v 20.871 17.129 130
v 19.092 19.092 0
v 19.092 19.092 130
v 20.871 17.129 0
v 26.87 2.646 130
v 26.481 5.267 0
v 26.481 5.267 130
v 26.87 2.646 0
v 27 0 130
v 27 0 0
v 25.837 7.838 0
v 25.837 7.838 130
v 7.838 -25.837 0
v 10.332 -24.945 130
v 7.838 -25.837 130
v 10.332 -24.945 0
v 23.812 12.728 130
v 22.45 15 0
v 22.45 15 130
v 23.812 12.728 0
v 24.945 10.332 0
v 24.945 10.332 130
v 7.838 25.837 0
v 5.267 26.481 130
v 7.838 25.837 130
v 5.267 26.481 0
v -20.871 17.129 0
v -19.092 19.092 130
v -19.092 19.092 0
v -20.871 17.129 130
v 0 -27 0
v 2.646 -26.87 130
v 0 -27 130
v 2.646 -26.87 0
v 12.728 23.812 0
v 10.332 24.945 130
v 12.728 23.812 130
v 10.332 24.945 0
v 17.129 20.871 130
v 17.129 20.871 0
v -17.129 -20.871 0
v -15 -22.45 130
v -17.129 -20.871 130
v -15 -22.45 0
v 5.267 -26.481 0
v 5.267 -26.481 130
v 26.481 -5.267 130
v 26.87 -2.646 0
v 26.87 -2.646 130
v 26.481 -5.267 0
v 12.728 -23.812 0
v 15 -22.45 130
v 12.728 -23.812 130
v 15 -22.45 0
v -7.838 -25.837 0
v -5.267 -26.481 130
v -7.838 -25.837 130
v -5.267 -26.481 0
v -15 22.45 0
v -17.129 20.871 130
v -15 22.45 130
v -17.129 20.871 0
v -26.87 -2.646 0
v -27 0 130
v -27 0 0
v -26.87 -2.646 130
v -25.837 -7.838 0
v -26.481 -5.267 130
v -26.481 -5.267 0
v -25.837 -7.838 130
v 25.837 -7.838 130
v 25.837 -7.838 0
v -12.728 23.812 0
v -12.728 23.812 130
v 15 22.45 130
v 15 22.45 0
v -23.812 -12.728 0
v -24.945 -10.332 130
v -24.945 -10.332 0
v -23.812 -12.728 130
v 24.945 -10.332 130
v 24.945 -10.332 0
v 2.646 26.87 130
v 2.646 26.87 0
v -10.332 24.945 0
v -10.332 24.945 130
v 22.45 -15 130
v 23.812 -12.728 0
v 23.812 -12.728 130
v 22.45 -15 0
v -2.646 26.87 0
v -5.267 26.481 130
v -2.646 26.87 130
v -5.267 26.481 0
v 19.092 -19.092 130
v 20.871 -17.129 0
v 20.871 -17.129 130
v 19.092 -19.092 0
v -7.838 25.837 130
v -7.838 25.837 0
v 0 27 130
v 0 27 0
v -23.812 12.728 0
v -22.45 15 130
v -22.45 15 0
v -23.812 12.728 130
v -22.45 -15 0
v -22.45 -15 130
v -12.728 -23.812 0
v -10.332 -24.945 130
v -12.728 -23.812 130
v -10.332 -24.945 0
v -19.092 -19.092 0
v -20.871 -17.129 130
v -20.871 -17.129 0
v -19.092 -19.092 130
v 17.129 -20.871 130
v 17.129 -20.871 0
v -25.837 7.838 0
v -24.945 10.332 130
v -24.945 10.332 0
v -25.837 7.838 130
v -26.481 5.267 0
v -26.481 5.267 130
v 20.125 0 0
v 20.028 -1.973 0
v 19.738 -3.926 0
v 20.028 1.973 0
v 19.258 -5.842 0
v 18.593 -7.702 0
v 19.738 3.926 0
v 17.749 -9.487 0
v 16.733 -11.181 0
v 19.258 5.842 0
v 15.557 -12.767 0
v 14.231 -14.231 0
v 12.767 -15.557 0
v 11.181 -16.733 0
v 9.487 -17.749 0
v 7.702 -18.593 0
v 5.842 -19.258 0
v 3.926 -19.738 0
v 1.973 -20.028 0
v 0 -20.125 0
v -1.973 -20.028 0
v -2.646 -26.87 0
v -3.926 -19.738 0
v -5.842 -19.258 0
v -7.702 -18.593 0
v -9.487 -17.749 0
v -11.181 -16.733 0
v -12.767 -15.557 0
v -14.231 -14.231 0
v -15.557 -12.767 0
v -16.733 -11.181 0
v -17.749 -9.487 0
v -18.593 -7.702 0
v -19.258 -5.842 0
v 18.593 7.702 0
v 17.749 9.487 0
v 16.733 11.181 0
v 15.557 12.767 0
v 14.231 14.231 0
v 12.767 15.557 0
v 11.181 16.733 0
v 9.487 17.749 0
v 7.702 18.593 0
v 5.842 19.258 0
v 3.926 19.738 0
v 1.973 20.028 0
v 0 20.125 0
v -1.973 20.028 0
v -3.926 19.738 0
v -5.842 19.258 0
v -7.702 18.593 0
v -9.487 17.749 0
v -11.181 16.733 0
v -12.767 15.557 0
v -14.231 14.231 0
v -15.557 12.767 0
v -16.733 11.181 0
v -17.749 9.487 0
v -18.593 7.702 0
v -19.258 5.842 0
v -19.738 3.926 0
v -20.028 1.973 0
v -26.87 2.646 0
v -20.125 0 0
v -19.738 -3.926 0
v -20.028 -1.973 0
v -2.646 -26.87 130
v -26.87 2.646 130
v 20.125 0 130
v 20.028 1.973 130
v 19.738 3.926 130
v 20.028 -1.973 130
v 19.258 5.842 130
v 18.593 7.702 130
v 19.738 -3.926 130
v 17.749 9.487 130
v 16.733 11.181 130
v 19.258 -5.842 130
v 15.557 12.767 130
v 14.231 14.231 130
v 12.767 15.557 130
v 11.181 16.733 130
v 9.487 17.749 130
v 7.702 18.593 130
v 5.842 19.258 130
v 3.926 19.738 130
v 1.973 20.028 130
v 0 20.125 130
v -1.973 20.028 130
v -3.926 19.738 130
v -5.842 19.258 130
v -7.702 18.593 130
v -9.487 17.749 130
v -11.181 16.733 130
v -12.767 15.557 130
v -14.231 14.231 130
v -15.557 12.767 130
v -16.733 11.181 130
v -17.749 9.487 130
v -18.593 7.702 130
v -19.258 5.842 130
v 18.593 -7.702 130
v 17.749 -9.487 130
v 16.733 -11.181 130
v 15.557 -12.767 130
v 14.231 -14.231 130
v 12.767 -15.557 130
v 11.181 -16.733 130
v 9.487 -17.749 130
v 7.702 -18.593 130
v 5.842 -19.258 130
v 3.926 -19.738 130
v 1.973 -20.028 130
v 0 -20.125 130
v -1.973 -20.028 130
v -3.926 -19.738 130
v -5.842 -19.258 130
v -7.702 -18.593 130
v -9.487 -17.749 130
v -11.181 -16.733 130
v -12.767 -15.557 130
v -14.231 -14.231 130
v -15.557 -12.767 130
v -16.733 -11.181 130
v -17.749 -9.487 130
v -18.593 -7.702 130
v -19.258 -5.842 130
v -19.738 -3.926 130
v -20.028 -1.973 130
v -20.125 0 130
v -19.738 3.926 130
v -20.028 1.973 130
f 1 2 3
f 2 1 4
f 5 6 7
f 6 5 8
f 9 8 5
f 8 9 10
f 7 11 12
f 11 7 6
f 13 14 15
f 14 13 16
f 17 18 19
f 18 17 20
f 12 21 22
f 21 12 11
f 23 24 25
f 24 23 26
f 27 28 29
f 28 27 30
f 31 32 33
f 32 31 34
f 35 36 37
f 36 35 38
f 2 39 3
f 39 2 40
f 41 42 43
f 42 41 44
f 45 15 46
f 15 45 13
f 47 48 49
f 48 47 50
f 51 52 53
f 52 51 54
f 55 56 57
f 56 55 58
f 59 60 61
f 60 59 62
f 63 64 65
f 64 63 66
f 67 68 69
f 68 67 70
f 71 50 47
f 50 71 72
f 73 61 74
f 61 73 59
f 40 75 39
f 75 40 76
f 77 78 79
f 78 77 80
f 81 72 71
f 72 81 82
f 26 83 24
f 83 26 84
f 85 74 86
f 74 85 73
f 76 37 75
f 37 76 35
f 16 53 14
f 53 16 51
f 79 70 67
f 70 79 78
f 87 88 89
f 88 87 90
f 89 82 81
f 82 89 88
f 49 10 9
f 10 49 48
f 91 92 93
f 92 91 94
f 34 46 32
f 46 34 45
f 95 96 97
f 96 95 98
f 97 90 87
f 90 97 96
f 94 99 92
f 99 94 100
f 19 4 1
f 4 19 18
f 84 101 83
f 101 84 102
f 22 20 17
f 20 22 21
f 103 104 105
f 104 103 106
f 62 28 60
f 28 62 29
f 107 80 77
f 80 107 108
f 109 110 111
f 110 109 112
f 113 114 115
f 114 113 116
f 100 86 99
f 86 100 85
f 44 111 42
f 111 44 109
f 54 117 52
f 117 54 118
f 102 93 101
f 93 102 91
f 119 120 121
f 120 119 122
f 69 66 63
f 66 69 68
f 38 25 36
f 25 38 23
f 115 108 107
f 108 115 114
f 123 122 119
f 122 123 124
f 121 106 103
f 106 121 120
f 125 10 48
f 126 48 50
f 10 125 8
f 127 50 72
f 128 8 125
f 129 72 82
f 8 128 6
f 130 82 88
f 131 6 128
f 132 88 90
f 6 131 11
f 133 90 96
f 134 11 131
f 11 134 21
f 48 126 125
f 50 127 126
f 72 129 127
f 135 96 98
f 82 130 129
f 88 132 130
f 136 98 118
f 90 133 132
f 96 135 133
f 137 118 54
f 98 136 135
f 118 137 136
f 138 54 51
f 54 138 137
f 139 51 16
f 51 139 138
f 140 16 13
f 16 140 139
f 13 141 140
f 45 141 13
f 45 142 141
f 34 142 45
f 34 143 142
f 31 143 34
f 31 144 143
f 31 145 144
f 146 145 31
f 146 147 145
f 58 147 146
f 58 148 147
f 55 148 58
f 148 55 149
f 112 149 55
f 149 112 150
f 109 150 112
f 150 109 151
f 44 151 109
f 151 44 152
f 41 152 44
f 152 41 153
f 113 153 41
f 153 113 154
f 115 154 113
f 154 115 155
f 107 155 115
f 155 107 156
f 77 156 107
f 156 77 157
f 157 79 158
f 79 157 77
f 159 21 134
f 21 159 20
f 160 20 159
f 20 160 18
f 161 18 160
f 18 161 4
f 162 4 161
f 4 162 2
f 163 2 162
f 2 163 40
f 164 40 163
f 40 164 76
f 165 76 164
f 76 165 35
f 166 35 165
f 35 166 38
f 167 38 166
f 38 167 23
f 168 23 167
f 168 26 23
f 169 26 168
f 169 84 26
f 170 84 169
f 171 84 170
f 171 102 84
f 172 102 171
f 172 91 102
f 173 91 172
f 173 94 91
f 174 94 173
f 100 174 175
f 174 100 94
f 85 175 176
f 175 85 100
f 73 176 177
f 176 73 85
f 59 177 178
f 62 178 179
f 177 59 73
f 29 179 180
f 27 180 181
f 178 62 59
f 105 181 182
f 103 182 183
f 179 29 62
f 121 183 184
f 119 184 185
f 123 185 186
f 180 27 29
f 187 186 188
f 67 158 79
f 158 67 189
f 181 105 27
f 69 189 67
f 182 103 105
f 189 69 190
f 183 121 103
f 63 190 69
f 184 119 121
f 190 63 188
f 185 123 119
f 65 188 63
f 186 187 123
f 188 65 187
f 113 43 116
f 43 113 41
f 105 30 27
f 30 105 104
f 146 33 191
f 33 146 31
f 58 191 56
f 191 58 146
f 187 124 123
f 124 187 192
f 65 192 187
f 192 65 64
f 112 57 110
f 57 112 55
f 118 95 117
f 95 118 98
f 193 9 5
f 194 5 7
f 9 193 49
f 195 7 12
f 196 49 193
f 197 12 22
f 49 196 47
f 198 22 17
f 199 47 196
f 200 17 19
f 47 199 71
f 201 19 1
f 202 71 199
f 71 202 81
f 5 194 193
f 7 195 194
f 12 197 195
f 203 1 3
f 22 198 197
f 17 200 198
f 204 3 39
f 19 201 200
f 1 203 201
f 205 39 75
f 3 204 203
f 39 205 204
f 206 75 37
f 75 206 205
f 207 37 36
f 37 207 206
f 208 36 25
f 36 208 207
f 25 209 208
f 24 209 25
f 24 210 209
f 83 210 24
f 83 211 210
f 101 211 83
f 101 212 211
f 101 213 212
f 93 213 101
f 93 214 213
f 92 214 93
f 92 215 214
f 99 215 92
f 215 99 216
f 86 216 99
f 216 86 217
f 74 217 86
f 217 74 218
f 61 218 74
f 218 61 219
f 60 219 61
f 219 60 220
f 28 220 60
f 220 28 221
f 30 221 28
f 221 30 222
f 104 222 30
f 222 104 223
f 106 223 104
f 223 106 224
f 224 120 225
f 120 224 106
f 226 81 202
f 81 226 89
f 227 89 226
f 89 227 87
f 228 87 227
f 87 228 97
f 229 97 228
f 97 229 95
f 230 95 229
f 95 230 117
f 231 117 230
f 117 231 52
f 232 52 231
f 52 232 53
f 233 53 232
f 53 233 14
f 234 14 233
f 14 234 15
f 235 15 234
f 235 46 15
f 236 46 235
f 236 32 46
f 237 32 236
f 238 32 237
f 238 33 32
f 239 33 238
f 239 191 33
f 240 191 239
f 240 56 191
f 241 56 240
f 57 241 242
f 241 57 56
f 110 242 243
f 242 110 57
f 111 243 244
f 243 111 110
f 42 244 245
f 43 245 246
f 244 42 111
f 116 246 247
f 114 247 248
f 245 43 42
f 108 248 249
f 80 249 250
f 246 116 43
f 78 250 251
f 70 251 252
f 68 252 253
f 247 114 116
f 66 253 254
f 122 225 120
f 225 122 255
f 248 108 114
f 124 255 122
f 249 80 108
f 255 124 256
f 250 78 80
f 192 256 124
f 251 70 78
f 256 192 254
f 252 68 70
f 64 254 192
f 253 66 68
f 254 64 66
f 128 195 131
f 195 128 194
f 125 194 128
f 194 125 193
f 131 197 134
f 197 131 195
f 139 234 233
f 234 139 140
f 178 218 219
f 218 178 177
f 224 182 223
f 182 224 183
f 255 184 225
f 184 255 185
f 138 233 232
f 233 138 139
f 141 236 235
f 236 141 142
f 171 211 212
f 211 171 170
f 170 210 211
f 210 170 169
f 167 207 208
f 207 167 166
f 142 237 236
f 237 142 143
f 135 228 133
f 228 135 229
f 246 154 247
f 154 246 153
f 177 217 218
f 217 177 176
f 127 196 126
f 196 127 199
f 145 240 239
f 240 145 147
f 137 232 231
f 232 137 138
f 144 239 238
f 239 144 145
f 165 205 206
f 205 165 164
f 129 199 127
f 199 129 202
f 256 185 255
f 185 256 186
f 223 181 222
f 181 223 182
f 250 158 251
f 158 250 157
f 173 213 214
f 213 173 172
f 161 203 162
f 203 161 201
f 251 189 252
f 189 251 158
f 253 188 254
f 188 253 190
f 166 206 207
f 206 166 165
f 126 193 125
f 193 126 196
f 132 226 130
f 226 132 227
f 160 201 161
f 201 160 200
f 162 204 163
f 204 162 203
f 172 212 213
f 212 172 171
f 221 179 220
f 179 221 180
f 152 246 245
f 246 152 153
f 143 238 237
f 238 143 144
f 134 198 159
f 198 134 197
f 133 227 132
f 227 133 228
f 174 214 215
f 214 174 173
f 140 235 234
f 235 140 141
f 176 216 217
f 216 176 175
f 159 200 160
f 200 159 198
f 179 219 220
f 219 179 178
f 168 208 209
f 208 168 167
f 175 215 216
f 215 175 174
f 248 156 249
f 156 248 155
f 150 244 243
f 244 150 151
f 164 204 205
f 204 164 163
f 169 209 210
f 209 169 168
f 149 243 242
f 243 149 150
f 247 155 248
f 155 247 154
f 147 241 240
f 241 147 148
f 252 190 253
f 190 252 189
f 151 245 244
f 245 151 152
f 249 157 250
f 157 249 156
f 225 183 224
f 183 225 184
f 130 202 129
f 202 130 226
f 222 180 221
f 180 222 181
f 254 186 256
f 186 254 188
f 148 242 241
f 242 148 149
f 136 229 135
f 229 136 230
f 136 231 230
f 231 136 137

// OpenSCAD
$fn = 64;
d = 54;
st = 130;   // max spool thickness

difference() {
    cylinder(r=d/2, h=st);
    translate([0,0,-0.01])
        cylinder(r=20.125, h=st+0.02);
}
